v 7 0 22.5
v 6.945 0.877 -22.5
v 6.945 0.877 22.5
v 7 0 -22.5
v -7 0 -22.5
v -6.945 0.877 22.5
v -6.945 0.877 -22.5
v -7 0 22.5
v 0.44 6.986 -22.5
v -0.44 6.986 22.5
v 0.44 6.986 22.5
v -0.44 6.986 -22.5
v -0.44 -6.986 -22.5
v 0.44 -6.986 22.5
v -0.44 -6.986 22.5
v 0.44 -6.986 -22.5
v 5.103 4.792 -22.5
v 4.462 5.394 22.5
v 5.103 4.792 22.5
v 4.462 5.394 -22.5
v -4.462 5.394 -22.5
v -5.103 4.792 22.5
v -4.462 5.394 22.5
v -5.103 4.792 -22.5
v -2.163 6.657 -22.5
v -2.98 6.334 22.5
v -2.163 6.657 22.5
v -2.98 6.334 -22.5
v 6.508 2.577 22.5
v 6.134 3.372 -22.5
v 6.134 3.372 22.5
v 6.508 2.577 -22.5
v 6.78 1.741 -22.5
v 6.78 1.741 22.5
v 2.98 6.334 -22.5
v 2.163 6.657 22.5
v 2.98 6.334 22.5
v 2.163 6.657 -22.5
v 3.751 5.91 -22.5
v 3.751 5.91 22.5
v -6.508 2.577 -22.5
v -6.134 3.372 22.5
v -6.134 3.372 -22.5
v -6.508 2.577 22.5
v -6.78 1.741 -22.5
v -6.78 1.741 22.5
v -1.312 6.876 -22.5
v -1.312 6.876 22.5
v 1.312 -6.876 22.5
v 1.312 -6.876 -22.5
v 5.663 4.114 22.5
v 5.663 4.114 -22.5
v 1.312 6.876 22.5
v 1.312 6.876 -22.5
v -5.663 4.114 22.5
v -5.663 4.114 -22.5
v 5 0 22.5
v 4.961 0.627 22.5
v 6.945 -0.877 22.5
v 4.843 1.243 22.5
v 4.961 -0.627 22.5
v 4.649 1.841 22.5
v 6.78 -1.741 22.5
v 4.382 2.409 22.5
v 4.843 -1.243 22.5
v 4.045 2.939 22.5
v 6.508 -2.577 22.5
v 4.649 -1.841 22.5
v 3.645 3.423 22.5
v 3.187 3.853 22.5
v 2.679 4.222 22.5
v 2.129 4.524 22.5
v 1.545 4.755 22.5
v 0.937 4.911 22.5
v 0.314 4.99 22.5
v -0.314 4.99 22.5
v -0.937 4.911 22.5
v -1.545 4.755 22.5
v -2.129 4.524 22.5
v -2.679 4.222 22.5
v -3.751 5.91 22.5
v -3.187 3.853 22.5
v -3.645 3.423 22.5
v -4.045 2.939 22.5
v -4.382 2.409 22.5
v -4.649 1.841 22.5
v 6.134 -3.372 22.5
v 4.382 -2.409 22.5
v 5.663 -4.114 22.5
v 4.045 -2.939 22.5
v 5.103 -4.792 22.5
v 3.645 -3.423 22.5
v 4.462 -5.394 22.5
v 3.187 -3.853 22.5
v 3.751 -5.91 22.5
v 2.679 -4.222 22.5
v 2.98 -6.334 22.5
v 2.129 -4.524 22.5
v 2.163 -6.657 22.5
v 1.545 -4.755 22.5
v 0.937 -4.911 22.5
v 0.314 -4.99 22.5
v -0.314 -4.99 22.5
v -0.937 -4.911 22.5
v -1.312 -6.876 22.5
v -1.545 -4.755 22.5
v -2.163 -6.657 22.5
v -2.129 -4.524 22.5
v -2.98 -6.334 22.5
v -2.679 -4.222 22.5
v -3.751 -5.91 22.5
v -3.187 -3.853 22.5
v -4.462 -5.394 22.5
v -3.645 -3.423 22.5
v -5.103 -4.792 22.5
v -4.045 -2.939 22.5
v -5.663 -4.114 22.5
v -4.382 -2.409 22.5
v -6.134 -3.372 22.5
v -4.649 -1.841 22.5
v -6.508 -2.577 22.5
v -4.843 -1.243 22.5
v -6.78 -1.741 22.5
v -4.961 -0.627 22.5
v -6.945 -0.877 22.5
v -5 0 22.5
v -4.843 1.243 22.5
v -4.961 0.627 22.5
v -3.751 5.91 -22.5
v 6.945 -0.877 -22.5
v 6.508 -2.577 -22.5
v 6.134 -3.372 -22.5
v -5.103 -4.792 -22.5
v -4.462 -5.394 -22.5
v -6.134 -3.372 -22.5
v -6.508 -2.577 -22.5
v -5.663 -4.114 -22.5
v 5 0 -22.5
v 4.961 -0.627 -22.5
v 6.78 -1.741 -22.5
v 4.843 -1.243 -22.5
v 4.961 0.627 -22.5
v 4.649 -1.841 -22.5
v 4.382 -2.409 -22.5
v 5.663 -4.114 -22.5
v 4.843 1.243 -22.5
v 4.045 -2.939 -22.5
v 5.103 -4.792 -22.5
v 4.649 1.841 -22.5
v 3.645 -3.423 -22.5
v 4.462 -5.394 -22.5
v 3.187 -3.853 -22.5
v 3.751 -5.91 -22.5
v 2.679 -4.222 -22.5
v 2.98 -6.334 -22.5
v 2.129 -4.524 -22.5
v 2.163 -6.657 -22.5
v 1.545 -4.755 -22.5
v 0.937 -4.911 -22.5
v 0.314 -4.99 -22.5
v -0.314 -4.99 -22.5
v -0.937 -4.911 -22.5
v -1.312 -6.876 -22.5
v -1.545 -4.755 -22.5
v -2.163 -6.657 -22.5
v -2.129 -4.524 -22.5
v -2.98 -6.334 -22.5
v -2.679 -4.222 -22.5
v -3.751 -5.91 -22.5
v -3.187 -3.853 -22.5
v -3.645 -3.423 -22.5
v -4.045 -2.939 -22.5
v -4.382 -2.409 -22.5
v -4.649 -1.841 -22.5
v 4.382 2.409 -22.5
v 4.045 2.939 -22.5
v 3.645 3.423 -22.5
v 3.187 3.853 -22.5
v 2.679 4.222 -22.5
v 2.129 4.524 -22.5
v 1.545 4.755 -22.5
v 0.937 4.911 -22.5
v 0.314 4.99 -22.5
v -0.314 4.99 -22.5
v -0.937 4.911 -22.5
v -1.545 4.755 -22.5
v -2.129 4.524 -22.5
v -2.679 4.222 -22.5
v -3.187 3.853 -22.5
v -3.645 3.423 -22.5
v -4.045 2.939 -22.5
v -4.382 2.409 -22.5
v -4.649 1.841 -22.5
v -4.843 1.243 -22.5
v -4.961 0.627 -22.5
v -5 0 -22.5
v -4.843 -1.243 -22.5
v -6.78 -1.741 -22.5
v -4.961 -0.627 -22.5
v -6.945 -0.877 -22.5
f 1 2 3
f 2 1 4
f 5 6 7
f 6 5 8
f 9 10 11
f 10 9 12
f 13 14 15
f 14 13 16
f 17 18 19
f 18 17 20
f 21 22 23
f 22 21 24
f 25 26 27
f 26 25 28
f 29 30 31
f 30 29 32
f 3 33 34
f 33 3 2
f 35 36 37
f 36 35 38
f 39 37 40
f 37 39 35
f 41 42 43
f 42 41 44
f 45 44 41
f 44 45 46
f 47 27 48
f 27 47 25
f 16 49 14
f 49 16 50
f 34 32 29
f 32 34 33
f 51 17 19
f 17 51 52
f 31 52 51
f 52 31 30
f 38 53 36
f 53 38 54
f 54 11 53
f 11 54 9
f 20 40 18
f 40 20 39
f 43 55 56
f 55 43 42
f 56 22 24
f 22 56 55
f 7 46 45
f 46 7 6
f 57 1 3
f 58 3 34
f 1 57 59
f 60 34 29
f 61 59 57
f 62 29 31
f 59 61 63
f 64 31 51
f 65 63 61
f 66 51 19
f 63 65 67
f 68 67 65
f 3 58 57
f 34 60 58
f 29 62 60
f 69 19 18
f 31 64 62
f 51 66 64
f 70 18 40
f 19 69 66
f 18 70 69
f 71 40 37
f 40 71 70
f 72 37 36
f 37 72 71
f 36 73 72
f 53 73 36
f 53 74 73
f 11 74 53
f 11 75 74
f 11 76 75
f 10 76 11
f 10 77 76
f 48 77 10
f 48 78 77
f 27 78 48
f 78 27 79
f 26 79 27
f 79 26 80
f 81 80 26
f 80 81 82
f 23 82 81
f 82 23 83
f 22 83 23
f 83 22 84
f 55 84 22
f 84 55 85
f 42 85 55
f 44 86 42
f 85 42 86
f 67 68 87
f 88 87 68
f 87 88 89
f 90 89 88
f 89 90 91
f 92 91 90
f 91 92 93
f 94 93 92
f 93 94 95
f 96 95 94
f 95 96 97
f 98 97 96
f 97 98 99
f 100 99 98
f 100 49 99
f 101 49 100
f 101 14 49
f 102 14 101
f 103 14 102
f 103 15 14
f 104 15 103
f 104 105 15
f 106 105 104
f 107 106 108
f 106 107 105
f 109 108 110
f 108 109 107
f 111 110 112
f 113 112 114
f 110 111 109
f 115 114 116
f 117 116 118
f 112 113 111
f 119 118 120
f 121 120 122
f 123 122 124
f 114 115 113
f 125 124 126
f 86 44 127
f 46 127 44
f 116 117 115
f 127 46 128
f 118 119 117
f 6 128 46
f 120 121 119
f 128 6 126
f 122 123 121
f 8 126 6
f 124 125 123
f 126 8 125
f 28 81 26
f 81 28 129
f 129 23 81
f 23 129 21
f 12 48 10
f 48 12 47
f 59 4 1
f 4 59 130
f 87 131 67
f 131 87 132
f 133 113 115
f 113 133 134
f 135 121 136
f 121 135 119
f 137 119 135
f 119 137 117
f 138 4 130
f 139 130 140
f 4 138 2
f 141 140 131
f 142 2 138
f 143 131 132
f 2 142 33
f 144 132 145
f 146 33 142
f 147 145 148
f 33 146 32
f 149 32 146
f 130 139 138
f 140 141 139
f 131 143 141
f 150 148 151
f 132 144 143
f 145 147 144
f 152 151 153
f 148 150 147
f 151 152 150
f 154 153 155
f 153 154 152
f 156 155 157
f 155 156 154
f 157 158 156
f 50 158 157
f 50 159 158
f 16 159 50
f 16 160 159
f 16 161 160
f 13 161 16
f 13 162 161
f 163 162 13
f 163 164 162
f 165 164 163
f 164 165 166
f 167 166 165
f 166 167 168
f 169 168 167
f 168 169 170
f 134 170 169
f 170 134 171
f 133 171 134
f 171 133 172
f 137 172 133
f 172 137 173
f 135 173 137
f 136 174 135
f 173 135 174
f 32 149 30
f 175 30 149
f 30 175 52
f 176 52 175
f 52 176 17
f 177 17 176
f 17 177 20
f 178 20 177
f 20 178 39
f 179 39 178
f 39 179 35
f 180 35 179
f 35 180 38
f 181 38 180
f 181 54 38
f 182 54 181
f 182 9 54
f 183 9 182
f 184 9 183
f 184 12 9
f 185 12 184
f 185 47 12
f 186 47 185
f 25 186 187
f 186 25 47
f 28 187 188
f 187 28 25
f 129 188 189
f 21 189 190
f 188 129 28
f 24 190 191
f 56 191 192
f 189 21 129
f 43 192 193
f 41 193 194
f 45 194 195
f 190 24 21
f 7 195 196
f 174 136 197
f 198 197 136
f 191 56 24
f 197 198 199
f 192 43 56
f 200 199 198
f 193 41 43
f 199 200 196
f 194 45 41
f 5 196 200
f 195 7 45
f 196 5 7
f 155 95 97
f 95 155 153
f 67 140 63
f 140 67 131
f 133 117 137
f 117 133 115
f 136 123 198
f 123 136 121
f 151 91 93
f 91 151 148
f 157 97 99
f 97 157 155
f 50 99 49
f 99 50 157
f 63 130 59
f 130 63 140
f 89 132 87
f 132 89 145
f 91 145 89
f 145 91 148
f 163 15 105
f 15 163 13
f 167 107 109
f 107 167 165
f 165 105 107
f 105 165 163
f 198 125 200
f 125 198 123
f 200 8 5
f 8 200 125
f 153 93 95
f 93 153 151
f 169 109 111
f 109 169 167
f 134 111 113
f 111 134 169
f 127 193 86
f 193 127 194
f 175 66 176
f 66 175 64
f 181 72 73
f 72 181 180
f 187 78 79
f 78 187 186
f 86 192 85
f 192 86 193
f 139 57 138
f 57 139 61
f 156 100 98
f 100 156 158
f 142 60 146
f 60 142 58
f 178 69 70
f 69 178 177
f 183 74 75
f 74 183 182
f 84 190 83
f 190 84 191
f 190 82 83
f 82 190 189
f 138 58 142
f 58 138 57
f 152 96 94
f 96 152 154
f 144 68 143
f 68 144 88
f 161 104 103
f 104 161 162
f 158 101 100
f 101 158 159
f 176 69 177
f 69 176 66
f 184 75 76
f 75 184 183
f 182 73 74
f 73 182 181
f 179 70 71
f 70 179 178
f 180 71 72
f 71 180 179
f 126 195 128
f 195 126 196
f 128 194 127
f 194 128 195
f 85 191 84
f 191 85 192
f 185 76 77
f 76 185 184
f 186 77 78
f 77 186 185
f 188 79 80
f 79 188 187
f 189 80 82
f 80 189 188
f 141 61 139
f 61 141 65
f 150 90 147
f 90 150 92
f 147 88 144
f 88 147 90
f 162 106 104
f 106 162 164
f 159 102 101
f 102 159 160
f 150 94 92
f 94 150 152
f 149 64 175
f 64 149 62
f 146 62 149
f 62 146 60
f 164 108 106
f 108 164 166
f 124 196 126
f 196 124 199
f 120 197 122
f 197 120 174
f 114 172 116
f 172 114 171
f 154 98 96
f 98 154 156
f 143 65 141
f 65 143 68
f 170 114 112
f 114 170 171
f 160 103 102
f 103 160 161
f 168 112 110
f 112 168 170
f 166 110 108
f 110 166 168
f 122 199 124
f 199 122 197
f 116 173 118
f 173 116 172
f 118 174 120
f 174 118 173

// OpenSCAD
$fn = 50;


difference() {
	union() {
		translate(v = [0, 0, -22.5000000000]) {
			cylinder(h = 45, r = 7.0000000000);
		}
	}
	union() {
		translate(v = [0, 0, -100.0000000000]) {
			cylinder(h = 200, r = 5);
		}
	}
}
